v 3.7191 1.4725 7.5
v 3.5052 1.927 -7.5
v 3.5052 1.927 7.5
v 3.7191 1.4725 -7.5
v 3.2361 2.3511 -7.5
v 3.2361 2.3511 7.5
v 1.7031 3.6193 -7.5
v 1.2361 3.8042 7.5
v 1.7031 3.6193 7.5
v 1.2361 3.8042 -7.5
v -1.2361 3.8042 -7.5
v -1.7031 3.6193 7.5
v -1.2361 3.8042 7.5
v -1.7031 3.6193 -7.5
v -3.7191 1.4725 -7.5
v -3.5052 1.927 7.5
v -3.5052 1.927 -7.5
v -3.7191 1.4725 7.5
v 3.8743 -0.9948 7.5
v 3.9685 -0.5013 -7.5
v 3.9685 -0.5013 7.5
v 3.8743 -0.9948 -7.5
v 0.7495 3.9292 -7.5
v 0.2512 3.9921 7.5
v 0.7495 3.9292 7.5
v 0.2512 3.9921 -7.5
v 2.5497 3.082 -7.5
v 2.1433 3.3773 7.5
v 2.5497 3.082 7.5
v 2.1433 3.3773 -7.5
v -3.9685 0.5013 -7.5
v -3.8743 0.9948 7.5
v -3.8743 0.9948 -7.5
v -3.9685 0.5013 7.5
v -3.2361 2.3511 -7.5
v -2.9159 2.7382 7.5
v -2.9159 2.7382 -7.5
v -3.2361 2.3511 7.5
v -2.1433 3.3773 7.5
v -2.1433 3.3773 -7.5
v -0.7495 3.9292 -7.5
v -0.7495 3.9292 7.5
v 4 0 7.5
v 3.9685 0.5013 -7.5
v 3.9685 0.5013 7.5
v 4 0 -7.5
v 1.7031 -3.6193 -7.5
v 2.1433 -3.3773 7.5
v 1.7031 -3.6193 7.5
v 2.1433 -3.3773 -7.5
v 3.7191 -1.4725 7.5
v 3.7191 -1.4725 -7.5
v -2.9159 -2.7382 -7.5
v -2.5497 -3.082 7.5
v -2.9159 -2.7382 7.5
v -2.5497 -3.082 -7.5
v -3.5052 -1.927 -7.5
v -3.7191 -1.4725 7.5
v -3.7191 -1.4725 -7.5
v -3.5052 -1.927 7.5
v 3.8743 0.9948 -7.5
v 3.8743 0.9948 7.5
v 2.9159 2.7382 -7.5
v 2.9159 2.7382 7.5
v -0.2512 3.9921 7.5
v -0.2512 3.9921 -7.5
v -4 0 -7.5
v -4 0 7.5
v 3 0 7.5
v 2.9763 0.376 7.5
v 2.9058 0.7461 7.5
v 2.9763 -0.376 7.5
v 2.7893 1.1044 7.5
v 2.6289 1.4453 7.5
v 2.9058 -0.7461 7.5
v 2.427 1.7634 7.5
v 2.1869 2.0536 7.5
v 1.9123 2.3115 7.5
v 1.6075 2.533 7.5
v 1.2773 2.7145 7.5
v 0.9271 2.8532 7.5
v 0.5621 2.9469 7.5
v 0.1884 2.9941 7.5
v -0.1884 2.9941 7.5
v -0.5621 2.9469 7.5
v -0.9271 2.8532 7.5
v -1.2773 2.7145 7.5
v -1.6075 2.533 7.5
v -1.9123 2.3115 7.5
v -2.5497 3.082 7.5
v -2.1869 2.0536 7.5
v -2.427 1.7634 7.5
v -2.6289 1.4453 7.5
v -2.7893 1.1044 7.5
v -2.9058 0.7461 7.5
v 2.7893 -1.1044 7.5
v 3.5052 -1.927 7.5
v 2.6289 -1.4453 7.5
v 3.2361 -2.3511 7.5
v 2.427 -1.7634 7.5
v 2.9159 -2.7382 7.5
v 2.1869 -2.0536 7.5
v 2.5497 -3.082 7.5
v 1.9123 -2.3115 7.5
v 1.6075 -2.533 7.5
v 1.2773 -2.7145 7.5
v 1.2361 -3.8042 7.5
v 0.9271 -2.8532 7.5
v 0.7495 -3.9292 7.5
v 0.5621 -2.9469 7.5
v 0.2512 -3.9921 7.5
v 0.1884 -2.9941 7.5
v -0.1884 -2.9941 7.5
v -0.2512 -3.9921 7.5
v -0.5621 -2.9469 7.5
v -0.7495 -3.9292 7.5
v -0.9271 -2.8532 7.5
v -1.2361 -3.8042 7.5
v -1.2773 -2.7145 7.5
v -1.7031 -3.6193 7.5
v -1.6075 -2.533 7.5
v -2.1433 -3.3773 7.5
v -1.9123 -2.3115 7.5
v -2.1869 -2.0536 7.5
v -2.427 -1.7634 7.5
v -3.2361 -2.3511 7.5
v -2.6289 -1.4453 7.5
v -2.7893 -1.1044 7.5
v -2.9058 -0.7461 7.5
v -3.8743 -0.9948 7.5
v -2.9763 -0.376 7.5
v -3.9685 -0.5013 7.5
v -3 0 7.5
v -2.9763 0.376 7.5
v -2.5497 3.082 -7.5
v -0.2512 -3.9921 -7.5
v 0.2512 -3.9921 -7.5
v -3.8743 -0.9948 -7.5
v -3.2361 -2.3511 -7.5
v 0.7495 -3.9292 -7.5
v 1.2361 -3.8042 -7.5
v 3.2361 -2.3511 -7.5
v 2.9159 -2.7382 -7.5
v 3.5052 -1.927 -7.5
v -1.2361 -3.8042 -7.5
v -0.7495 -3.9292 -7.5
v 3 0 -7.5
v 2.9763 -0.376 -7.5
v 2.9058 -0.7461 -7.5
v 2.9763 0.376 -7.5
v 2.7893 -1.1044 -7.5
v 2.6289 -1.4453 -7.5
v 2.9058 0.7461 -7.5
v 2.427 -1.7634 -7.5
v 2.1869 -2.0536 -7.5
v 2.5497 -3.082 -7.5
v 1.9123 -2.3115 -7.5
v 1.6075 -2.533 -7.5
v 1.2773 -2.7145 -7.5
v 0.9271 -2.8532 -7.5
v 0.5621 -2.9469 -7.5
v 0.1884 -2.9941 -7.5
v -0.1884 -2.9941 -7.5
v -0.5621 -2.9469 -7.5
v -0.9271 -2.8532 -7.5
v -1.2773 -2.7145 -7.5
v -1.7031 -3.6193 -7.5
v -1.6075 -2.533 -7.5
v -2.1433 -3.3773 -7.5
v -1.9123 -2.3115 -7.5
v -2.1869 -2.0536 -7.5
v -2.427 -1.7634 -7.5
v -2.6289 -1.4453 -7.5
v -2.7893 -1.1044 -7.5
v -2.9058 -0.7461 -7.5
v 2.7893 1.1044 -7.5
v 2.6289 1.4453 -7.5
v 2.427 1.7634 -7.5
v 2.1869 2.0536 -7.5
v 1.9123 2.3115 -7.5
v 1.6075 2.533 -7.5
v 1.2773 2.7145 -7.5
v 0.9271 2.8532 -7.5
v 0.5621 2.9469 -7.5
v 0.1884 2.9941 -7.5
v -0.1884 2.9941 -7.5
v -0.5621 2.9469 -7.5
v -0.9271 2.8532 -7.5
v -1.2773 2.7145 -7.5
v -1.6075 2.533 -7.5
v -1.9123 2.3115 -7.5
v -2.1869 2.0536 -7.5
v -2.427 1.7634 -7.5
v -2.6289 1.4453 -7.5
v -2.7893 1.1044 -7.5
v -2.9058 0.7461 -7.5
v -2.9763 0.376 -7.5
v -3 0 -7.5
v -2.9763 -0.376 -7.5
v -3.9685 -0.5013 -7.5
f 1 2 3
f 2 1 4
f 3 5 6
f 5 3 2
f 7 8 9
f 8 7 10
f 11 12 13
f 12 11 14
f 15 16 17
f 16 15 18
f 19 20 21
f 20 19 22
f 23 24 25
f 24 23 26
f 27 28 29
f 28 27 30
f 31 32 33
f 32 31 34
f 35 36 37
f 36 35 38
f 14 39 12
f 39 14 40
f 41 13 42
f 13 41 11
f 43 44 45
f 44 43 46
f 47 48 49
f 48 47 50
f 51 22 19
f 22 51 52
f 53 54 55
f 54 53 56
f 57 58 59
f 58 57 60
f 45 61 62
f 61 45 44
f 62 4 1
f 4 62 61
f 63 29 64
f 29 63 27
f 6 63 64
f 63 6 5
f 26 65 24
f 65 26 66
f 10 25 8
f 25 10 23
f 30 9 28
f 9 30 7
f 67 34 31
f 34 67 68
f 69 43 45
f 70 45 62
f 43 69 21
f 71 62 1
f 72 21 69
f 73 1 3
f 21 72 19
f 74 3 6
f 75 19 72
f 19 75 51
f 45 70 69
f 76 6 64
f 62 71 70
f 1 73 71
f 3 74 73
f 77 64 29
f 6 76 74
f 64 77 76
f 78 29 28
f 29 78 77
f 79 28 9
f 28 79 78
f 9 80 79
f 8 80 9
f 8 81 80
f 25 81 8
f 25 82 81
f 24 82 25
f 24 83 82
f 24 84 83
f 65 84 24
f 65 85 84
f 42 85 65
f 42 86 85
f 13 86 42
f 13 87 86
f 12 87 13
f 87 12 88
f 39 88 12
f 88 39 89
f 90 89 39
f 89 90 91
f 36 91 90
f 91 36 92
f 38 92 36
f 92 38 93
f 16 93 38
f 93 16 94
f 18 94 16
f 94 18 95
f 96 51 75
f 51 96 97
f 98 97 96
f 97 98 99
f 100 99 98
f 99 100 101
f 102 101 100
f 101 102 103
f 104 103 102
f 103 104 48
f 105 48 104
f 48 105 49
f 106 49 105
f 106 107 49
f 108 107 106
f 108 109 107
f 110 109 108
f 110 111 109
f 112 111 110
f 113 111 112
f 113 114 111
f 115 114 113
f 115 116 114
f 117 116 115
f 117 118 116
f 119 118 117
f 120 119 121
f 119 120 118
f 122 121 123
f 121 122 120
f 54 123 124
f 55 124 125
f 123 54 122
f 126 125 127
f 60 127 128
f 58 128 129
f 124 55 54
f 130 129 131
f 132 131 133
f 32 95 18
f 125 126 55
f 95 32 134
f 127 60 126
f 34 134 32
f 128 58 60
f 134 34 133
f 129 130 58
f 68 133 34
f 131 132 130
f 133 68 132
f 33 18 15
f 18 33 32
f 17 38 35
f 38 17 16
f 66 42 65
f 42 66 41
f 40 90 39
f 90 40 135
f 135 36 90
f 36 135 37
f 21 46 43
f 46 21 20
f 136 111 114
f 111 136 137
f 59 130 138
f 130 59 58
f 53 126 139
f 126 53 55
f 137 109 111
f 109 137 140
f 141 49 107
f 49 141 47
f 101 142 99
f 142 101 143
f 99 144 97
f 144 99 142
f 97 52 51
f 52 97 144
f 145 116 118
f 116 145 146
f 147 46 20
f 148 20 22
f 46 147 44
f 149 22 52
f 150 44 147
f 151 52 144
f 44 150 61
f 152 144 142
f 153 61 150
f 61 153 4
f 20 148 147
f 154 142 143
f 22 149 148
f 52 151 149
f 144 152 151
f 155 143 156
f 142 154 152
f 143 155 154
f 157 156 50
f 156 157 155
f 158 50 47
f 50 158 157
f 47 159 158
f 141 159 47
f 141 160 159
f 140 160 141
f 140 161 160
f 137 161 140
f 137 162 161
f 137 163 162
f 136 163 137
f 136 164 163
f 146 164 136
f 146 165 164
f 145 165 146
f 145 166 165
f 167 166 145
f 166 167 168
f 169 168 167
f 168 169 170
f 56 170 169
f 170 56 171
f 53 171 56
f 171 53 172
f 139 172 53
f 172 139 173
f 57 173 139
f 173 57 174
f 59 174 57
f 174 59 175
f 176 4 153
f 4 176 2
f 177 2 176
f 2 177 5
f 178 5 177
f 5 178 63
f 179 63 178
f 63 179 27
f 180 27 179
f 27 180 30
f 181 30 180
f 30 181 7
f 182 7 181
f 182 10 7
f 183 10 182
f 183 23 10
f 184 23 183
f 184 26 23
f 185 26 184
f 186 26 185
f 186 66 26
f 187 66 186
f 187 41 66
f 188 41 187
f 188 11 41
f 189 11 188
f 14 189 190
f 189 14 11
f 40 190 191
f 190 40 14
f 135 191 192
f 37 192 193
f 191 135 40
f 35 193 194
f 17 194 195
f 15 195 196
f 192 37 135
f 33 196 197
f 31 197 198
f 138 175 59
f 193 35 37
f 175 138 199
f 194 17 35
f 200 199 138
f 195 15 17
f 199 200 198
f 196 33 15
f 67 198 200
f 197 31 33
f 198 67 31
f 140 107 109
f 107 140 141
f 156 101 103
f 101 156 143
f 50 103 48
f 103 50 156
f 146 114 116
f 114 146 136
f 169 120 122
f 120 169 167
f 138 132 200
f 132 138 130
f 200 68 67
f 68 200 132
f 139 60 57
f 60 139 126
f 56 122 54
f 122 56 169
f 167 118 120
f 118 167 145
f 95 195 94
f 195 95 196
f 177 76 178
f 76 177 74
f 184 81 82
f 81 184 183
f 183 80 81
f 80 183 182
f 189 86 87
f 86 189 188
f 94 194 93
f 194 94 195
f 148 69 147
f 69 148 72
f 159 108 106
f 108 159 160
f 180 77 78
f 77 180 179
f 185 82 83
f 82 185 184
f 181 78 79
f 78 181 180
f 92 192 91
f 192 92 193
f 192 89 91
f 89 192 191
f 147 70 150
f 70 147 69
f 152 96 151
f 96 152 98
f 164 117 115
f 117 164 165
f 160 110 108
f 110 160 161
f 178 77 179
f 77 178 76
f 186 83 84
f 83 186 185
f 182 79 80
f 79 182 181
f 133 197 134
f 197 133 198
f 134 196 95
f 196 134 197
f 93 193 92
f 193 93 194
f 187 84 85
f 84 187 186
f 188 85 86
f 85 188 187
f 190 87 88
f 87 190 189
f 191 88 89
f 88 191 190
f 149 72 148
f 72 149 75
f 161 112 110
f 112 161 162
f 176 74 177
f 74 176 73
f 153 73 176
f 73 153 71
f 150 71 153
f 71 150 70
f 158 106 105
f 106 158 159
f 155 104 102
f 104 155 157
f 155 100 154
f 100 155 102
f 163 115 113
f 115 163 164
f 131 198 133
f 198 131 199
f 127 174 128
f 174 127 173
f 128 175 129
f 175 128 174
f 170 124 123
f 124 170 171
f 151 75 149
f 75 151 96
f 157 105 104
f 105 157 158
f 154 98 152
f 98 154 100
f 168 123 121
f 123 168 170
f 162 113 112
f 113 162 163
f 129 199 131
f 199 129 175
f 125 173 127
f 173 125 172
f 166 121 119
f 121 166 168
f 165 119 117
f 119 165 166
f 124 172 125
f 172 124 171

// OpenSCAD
$fn = 50;


difference() {
	union() {
		translate(v = [0, 0, -7.5000000000]) {
			cylinder(h = 15, r = 4.0000000000);
		}
	}
	union() {
		translate(v = [0, 0, -100.0000000000]) {
			cylinder(h = 200, r = 3);
		}
	}
}
